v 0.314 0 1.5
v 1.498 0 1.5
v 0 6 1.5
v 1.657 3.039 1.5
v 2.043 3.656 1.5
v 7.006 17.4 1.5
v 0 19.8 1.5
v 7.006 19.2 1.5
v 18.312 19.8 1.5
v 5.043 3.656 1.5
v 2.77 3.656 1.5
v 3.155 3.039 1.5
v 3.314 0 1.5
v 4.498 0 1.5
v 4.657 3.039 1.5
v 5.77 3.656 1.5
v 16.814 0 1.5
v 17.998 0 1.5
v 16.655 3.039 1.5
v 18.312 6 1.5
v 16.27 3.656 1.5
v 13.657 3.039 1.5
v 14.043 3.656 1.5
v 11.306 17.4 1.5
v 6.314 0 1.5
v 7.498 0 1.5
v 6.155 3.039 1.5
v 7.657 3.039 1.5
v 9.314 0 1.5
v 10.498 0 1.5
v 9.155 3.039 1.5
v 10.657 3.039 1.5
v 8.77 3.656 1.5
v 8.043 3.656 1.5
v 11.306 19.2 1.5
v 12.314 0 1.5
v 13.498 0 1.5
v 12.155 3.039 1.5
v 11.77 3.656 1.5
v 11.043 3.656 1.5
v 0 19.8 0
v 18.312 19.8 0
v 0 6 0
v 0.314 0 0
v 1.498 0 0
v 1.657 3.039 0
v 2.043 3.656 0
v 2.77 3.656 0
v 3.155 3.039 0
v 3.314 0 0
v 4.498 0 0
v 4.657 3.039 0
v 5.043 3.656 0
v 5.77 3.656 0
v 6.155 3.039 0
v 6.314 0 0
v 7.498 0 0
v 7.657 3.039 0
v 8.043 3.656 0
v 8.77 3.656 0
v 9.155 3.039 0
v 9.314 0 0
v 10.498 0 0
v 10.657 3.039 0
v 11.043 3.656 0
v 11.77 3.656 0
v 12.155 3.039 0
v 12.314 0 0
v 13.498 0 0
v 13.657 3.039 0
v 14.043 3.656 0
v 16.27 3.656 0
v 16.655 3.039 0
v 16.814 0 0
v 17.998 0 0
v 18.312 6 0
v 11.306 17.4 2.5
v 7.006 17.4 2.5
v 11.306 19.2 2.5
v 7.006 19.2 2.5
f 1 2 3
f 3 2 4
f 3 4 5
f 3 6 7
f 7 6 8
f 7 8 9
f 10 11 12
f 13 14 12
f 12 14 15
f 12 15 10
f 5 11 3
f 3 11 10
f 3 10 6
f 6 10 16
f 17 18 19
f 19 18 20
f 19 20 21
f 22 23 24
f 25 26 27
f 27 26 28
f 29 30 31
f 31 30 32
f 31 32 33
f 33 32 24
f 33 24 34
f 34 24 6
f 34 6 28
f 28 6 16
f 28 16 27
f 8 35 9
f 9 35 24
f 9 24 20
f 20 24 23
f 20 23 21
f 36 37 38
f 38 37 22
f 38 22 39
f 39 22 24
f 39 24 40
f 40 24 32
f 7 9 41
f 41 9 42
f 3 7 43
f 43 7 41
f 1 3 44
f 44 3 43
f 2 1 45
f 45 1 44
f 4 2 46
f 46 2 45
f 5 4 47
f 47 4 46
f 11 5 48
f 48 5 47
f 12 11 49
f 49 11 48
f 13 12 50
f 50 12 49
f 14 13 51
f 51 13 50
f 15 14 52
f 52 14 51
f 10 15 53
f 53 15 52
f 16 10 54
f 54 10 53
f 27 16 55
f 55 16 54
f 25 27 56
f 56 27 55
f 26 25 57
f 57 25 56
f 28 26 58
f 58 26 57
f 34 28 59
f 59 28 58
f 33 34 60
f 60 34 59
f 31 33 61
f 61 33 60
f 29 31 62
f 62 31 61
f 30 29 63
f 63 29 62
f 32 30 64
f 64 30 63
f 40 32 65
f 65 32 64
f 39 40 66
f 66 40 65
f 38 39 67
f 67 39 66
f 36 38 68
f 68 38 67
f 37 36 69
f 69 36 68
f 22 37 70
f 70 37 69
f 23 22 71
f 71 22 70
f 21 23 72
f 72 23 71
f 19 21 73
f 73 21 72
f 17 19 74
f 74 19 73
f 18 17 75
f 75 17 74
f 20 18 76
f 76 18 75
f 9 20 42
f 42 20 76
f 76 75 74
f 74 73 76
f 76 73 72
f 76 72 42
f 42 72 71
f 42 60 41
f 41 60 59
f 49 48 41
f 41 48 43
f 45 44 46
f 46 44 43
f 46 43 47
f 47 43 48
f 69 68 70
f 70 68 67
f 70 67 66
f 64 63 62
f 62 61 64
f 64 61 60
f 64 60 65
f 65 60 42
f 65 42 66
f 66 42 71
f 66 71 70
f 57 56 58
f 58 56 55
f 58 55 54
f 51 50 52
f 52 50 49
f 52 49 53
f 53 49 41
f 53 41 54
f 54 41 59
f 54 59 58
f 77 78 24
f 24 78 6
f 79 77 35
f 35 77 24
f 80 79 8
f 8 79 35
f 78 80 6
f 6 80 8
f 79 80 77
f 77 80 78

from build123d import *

# Parameters (mm, degrees)
BOSS_EXTRUDE1_DEPTH = 1.5
BOSS_EXTRUDE3_START = 1.5
SKETCH11_W          = 4.3
SKETCH11_H          = 1.8
BOSS_EXTRUDE3_DEPTH = 1


with BuildPart() as part:
    # Sketch1 → Boss-Extrude1 (new body)
    with BuildSketch(Plane.XY):
        Polygon((0, 6), (0.314446676, 0), (1.497941481, 0), (1.657221927, 3.039251967), (2.042586863, 3.65596478), (2.769801294, 3.65596478), (3.155166229, 3.039251967), (3.314446676, 0), (4.497941481, 0), (4.657221927, 3.039251967), (5.042586863, 3.65596478), (5.769801294, 3.65596478), (6.155166229, 3.039251967), (6.314446676, 0), (7.497941481, 0), (7.657221927, 3.039251967), (8.042586863, 3.65596478), (8.769801294, 3.65596478), (9.155166229, 3.039251967), (9.314446676, 0), (10.497941481, 0), (10.657221927, 3.039251967), (11.042586863, 3.65596478), (11.769801294, 3.65596478), (12.155166229, 3.039251967), (12.314446676, 0), (13.497941481, 0), (13.657221927, 3.039251967), (14.042586863, 3.65596478), (16.269801294, 3.65596478), (16.655166229, 3.039251967), (16.814446676, 0), (17.997941481, 0), (18.312388157, 6), (18.312388157, 19.8), (0, 19.8), align=None)
    extrude(amount=BOSS_EXTRUDE1_DEPTH)

    # Sketch11 → Boss-Extrude3 (add)
    with BuildSketch(Plane.XY.offset(BOSS_EXTRUDE3_START)):
        with Locations((9.156194078, 18.3)):
            Rectangle(SKETCH11_W, SKETCH11_H)
    extrude(amount=BOSS_EXTRUDE3_DEPTH)


solid = part.part
